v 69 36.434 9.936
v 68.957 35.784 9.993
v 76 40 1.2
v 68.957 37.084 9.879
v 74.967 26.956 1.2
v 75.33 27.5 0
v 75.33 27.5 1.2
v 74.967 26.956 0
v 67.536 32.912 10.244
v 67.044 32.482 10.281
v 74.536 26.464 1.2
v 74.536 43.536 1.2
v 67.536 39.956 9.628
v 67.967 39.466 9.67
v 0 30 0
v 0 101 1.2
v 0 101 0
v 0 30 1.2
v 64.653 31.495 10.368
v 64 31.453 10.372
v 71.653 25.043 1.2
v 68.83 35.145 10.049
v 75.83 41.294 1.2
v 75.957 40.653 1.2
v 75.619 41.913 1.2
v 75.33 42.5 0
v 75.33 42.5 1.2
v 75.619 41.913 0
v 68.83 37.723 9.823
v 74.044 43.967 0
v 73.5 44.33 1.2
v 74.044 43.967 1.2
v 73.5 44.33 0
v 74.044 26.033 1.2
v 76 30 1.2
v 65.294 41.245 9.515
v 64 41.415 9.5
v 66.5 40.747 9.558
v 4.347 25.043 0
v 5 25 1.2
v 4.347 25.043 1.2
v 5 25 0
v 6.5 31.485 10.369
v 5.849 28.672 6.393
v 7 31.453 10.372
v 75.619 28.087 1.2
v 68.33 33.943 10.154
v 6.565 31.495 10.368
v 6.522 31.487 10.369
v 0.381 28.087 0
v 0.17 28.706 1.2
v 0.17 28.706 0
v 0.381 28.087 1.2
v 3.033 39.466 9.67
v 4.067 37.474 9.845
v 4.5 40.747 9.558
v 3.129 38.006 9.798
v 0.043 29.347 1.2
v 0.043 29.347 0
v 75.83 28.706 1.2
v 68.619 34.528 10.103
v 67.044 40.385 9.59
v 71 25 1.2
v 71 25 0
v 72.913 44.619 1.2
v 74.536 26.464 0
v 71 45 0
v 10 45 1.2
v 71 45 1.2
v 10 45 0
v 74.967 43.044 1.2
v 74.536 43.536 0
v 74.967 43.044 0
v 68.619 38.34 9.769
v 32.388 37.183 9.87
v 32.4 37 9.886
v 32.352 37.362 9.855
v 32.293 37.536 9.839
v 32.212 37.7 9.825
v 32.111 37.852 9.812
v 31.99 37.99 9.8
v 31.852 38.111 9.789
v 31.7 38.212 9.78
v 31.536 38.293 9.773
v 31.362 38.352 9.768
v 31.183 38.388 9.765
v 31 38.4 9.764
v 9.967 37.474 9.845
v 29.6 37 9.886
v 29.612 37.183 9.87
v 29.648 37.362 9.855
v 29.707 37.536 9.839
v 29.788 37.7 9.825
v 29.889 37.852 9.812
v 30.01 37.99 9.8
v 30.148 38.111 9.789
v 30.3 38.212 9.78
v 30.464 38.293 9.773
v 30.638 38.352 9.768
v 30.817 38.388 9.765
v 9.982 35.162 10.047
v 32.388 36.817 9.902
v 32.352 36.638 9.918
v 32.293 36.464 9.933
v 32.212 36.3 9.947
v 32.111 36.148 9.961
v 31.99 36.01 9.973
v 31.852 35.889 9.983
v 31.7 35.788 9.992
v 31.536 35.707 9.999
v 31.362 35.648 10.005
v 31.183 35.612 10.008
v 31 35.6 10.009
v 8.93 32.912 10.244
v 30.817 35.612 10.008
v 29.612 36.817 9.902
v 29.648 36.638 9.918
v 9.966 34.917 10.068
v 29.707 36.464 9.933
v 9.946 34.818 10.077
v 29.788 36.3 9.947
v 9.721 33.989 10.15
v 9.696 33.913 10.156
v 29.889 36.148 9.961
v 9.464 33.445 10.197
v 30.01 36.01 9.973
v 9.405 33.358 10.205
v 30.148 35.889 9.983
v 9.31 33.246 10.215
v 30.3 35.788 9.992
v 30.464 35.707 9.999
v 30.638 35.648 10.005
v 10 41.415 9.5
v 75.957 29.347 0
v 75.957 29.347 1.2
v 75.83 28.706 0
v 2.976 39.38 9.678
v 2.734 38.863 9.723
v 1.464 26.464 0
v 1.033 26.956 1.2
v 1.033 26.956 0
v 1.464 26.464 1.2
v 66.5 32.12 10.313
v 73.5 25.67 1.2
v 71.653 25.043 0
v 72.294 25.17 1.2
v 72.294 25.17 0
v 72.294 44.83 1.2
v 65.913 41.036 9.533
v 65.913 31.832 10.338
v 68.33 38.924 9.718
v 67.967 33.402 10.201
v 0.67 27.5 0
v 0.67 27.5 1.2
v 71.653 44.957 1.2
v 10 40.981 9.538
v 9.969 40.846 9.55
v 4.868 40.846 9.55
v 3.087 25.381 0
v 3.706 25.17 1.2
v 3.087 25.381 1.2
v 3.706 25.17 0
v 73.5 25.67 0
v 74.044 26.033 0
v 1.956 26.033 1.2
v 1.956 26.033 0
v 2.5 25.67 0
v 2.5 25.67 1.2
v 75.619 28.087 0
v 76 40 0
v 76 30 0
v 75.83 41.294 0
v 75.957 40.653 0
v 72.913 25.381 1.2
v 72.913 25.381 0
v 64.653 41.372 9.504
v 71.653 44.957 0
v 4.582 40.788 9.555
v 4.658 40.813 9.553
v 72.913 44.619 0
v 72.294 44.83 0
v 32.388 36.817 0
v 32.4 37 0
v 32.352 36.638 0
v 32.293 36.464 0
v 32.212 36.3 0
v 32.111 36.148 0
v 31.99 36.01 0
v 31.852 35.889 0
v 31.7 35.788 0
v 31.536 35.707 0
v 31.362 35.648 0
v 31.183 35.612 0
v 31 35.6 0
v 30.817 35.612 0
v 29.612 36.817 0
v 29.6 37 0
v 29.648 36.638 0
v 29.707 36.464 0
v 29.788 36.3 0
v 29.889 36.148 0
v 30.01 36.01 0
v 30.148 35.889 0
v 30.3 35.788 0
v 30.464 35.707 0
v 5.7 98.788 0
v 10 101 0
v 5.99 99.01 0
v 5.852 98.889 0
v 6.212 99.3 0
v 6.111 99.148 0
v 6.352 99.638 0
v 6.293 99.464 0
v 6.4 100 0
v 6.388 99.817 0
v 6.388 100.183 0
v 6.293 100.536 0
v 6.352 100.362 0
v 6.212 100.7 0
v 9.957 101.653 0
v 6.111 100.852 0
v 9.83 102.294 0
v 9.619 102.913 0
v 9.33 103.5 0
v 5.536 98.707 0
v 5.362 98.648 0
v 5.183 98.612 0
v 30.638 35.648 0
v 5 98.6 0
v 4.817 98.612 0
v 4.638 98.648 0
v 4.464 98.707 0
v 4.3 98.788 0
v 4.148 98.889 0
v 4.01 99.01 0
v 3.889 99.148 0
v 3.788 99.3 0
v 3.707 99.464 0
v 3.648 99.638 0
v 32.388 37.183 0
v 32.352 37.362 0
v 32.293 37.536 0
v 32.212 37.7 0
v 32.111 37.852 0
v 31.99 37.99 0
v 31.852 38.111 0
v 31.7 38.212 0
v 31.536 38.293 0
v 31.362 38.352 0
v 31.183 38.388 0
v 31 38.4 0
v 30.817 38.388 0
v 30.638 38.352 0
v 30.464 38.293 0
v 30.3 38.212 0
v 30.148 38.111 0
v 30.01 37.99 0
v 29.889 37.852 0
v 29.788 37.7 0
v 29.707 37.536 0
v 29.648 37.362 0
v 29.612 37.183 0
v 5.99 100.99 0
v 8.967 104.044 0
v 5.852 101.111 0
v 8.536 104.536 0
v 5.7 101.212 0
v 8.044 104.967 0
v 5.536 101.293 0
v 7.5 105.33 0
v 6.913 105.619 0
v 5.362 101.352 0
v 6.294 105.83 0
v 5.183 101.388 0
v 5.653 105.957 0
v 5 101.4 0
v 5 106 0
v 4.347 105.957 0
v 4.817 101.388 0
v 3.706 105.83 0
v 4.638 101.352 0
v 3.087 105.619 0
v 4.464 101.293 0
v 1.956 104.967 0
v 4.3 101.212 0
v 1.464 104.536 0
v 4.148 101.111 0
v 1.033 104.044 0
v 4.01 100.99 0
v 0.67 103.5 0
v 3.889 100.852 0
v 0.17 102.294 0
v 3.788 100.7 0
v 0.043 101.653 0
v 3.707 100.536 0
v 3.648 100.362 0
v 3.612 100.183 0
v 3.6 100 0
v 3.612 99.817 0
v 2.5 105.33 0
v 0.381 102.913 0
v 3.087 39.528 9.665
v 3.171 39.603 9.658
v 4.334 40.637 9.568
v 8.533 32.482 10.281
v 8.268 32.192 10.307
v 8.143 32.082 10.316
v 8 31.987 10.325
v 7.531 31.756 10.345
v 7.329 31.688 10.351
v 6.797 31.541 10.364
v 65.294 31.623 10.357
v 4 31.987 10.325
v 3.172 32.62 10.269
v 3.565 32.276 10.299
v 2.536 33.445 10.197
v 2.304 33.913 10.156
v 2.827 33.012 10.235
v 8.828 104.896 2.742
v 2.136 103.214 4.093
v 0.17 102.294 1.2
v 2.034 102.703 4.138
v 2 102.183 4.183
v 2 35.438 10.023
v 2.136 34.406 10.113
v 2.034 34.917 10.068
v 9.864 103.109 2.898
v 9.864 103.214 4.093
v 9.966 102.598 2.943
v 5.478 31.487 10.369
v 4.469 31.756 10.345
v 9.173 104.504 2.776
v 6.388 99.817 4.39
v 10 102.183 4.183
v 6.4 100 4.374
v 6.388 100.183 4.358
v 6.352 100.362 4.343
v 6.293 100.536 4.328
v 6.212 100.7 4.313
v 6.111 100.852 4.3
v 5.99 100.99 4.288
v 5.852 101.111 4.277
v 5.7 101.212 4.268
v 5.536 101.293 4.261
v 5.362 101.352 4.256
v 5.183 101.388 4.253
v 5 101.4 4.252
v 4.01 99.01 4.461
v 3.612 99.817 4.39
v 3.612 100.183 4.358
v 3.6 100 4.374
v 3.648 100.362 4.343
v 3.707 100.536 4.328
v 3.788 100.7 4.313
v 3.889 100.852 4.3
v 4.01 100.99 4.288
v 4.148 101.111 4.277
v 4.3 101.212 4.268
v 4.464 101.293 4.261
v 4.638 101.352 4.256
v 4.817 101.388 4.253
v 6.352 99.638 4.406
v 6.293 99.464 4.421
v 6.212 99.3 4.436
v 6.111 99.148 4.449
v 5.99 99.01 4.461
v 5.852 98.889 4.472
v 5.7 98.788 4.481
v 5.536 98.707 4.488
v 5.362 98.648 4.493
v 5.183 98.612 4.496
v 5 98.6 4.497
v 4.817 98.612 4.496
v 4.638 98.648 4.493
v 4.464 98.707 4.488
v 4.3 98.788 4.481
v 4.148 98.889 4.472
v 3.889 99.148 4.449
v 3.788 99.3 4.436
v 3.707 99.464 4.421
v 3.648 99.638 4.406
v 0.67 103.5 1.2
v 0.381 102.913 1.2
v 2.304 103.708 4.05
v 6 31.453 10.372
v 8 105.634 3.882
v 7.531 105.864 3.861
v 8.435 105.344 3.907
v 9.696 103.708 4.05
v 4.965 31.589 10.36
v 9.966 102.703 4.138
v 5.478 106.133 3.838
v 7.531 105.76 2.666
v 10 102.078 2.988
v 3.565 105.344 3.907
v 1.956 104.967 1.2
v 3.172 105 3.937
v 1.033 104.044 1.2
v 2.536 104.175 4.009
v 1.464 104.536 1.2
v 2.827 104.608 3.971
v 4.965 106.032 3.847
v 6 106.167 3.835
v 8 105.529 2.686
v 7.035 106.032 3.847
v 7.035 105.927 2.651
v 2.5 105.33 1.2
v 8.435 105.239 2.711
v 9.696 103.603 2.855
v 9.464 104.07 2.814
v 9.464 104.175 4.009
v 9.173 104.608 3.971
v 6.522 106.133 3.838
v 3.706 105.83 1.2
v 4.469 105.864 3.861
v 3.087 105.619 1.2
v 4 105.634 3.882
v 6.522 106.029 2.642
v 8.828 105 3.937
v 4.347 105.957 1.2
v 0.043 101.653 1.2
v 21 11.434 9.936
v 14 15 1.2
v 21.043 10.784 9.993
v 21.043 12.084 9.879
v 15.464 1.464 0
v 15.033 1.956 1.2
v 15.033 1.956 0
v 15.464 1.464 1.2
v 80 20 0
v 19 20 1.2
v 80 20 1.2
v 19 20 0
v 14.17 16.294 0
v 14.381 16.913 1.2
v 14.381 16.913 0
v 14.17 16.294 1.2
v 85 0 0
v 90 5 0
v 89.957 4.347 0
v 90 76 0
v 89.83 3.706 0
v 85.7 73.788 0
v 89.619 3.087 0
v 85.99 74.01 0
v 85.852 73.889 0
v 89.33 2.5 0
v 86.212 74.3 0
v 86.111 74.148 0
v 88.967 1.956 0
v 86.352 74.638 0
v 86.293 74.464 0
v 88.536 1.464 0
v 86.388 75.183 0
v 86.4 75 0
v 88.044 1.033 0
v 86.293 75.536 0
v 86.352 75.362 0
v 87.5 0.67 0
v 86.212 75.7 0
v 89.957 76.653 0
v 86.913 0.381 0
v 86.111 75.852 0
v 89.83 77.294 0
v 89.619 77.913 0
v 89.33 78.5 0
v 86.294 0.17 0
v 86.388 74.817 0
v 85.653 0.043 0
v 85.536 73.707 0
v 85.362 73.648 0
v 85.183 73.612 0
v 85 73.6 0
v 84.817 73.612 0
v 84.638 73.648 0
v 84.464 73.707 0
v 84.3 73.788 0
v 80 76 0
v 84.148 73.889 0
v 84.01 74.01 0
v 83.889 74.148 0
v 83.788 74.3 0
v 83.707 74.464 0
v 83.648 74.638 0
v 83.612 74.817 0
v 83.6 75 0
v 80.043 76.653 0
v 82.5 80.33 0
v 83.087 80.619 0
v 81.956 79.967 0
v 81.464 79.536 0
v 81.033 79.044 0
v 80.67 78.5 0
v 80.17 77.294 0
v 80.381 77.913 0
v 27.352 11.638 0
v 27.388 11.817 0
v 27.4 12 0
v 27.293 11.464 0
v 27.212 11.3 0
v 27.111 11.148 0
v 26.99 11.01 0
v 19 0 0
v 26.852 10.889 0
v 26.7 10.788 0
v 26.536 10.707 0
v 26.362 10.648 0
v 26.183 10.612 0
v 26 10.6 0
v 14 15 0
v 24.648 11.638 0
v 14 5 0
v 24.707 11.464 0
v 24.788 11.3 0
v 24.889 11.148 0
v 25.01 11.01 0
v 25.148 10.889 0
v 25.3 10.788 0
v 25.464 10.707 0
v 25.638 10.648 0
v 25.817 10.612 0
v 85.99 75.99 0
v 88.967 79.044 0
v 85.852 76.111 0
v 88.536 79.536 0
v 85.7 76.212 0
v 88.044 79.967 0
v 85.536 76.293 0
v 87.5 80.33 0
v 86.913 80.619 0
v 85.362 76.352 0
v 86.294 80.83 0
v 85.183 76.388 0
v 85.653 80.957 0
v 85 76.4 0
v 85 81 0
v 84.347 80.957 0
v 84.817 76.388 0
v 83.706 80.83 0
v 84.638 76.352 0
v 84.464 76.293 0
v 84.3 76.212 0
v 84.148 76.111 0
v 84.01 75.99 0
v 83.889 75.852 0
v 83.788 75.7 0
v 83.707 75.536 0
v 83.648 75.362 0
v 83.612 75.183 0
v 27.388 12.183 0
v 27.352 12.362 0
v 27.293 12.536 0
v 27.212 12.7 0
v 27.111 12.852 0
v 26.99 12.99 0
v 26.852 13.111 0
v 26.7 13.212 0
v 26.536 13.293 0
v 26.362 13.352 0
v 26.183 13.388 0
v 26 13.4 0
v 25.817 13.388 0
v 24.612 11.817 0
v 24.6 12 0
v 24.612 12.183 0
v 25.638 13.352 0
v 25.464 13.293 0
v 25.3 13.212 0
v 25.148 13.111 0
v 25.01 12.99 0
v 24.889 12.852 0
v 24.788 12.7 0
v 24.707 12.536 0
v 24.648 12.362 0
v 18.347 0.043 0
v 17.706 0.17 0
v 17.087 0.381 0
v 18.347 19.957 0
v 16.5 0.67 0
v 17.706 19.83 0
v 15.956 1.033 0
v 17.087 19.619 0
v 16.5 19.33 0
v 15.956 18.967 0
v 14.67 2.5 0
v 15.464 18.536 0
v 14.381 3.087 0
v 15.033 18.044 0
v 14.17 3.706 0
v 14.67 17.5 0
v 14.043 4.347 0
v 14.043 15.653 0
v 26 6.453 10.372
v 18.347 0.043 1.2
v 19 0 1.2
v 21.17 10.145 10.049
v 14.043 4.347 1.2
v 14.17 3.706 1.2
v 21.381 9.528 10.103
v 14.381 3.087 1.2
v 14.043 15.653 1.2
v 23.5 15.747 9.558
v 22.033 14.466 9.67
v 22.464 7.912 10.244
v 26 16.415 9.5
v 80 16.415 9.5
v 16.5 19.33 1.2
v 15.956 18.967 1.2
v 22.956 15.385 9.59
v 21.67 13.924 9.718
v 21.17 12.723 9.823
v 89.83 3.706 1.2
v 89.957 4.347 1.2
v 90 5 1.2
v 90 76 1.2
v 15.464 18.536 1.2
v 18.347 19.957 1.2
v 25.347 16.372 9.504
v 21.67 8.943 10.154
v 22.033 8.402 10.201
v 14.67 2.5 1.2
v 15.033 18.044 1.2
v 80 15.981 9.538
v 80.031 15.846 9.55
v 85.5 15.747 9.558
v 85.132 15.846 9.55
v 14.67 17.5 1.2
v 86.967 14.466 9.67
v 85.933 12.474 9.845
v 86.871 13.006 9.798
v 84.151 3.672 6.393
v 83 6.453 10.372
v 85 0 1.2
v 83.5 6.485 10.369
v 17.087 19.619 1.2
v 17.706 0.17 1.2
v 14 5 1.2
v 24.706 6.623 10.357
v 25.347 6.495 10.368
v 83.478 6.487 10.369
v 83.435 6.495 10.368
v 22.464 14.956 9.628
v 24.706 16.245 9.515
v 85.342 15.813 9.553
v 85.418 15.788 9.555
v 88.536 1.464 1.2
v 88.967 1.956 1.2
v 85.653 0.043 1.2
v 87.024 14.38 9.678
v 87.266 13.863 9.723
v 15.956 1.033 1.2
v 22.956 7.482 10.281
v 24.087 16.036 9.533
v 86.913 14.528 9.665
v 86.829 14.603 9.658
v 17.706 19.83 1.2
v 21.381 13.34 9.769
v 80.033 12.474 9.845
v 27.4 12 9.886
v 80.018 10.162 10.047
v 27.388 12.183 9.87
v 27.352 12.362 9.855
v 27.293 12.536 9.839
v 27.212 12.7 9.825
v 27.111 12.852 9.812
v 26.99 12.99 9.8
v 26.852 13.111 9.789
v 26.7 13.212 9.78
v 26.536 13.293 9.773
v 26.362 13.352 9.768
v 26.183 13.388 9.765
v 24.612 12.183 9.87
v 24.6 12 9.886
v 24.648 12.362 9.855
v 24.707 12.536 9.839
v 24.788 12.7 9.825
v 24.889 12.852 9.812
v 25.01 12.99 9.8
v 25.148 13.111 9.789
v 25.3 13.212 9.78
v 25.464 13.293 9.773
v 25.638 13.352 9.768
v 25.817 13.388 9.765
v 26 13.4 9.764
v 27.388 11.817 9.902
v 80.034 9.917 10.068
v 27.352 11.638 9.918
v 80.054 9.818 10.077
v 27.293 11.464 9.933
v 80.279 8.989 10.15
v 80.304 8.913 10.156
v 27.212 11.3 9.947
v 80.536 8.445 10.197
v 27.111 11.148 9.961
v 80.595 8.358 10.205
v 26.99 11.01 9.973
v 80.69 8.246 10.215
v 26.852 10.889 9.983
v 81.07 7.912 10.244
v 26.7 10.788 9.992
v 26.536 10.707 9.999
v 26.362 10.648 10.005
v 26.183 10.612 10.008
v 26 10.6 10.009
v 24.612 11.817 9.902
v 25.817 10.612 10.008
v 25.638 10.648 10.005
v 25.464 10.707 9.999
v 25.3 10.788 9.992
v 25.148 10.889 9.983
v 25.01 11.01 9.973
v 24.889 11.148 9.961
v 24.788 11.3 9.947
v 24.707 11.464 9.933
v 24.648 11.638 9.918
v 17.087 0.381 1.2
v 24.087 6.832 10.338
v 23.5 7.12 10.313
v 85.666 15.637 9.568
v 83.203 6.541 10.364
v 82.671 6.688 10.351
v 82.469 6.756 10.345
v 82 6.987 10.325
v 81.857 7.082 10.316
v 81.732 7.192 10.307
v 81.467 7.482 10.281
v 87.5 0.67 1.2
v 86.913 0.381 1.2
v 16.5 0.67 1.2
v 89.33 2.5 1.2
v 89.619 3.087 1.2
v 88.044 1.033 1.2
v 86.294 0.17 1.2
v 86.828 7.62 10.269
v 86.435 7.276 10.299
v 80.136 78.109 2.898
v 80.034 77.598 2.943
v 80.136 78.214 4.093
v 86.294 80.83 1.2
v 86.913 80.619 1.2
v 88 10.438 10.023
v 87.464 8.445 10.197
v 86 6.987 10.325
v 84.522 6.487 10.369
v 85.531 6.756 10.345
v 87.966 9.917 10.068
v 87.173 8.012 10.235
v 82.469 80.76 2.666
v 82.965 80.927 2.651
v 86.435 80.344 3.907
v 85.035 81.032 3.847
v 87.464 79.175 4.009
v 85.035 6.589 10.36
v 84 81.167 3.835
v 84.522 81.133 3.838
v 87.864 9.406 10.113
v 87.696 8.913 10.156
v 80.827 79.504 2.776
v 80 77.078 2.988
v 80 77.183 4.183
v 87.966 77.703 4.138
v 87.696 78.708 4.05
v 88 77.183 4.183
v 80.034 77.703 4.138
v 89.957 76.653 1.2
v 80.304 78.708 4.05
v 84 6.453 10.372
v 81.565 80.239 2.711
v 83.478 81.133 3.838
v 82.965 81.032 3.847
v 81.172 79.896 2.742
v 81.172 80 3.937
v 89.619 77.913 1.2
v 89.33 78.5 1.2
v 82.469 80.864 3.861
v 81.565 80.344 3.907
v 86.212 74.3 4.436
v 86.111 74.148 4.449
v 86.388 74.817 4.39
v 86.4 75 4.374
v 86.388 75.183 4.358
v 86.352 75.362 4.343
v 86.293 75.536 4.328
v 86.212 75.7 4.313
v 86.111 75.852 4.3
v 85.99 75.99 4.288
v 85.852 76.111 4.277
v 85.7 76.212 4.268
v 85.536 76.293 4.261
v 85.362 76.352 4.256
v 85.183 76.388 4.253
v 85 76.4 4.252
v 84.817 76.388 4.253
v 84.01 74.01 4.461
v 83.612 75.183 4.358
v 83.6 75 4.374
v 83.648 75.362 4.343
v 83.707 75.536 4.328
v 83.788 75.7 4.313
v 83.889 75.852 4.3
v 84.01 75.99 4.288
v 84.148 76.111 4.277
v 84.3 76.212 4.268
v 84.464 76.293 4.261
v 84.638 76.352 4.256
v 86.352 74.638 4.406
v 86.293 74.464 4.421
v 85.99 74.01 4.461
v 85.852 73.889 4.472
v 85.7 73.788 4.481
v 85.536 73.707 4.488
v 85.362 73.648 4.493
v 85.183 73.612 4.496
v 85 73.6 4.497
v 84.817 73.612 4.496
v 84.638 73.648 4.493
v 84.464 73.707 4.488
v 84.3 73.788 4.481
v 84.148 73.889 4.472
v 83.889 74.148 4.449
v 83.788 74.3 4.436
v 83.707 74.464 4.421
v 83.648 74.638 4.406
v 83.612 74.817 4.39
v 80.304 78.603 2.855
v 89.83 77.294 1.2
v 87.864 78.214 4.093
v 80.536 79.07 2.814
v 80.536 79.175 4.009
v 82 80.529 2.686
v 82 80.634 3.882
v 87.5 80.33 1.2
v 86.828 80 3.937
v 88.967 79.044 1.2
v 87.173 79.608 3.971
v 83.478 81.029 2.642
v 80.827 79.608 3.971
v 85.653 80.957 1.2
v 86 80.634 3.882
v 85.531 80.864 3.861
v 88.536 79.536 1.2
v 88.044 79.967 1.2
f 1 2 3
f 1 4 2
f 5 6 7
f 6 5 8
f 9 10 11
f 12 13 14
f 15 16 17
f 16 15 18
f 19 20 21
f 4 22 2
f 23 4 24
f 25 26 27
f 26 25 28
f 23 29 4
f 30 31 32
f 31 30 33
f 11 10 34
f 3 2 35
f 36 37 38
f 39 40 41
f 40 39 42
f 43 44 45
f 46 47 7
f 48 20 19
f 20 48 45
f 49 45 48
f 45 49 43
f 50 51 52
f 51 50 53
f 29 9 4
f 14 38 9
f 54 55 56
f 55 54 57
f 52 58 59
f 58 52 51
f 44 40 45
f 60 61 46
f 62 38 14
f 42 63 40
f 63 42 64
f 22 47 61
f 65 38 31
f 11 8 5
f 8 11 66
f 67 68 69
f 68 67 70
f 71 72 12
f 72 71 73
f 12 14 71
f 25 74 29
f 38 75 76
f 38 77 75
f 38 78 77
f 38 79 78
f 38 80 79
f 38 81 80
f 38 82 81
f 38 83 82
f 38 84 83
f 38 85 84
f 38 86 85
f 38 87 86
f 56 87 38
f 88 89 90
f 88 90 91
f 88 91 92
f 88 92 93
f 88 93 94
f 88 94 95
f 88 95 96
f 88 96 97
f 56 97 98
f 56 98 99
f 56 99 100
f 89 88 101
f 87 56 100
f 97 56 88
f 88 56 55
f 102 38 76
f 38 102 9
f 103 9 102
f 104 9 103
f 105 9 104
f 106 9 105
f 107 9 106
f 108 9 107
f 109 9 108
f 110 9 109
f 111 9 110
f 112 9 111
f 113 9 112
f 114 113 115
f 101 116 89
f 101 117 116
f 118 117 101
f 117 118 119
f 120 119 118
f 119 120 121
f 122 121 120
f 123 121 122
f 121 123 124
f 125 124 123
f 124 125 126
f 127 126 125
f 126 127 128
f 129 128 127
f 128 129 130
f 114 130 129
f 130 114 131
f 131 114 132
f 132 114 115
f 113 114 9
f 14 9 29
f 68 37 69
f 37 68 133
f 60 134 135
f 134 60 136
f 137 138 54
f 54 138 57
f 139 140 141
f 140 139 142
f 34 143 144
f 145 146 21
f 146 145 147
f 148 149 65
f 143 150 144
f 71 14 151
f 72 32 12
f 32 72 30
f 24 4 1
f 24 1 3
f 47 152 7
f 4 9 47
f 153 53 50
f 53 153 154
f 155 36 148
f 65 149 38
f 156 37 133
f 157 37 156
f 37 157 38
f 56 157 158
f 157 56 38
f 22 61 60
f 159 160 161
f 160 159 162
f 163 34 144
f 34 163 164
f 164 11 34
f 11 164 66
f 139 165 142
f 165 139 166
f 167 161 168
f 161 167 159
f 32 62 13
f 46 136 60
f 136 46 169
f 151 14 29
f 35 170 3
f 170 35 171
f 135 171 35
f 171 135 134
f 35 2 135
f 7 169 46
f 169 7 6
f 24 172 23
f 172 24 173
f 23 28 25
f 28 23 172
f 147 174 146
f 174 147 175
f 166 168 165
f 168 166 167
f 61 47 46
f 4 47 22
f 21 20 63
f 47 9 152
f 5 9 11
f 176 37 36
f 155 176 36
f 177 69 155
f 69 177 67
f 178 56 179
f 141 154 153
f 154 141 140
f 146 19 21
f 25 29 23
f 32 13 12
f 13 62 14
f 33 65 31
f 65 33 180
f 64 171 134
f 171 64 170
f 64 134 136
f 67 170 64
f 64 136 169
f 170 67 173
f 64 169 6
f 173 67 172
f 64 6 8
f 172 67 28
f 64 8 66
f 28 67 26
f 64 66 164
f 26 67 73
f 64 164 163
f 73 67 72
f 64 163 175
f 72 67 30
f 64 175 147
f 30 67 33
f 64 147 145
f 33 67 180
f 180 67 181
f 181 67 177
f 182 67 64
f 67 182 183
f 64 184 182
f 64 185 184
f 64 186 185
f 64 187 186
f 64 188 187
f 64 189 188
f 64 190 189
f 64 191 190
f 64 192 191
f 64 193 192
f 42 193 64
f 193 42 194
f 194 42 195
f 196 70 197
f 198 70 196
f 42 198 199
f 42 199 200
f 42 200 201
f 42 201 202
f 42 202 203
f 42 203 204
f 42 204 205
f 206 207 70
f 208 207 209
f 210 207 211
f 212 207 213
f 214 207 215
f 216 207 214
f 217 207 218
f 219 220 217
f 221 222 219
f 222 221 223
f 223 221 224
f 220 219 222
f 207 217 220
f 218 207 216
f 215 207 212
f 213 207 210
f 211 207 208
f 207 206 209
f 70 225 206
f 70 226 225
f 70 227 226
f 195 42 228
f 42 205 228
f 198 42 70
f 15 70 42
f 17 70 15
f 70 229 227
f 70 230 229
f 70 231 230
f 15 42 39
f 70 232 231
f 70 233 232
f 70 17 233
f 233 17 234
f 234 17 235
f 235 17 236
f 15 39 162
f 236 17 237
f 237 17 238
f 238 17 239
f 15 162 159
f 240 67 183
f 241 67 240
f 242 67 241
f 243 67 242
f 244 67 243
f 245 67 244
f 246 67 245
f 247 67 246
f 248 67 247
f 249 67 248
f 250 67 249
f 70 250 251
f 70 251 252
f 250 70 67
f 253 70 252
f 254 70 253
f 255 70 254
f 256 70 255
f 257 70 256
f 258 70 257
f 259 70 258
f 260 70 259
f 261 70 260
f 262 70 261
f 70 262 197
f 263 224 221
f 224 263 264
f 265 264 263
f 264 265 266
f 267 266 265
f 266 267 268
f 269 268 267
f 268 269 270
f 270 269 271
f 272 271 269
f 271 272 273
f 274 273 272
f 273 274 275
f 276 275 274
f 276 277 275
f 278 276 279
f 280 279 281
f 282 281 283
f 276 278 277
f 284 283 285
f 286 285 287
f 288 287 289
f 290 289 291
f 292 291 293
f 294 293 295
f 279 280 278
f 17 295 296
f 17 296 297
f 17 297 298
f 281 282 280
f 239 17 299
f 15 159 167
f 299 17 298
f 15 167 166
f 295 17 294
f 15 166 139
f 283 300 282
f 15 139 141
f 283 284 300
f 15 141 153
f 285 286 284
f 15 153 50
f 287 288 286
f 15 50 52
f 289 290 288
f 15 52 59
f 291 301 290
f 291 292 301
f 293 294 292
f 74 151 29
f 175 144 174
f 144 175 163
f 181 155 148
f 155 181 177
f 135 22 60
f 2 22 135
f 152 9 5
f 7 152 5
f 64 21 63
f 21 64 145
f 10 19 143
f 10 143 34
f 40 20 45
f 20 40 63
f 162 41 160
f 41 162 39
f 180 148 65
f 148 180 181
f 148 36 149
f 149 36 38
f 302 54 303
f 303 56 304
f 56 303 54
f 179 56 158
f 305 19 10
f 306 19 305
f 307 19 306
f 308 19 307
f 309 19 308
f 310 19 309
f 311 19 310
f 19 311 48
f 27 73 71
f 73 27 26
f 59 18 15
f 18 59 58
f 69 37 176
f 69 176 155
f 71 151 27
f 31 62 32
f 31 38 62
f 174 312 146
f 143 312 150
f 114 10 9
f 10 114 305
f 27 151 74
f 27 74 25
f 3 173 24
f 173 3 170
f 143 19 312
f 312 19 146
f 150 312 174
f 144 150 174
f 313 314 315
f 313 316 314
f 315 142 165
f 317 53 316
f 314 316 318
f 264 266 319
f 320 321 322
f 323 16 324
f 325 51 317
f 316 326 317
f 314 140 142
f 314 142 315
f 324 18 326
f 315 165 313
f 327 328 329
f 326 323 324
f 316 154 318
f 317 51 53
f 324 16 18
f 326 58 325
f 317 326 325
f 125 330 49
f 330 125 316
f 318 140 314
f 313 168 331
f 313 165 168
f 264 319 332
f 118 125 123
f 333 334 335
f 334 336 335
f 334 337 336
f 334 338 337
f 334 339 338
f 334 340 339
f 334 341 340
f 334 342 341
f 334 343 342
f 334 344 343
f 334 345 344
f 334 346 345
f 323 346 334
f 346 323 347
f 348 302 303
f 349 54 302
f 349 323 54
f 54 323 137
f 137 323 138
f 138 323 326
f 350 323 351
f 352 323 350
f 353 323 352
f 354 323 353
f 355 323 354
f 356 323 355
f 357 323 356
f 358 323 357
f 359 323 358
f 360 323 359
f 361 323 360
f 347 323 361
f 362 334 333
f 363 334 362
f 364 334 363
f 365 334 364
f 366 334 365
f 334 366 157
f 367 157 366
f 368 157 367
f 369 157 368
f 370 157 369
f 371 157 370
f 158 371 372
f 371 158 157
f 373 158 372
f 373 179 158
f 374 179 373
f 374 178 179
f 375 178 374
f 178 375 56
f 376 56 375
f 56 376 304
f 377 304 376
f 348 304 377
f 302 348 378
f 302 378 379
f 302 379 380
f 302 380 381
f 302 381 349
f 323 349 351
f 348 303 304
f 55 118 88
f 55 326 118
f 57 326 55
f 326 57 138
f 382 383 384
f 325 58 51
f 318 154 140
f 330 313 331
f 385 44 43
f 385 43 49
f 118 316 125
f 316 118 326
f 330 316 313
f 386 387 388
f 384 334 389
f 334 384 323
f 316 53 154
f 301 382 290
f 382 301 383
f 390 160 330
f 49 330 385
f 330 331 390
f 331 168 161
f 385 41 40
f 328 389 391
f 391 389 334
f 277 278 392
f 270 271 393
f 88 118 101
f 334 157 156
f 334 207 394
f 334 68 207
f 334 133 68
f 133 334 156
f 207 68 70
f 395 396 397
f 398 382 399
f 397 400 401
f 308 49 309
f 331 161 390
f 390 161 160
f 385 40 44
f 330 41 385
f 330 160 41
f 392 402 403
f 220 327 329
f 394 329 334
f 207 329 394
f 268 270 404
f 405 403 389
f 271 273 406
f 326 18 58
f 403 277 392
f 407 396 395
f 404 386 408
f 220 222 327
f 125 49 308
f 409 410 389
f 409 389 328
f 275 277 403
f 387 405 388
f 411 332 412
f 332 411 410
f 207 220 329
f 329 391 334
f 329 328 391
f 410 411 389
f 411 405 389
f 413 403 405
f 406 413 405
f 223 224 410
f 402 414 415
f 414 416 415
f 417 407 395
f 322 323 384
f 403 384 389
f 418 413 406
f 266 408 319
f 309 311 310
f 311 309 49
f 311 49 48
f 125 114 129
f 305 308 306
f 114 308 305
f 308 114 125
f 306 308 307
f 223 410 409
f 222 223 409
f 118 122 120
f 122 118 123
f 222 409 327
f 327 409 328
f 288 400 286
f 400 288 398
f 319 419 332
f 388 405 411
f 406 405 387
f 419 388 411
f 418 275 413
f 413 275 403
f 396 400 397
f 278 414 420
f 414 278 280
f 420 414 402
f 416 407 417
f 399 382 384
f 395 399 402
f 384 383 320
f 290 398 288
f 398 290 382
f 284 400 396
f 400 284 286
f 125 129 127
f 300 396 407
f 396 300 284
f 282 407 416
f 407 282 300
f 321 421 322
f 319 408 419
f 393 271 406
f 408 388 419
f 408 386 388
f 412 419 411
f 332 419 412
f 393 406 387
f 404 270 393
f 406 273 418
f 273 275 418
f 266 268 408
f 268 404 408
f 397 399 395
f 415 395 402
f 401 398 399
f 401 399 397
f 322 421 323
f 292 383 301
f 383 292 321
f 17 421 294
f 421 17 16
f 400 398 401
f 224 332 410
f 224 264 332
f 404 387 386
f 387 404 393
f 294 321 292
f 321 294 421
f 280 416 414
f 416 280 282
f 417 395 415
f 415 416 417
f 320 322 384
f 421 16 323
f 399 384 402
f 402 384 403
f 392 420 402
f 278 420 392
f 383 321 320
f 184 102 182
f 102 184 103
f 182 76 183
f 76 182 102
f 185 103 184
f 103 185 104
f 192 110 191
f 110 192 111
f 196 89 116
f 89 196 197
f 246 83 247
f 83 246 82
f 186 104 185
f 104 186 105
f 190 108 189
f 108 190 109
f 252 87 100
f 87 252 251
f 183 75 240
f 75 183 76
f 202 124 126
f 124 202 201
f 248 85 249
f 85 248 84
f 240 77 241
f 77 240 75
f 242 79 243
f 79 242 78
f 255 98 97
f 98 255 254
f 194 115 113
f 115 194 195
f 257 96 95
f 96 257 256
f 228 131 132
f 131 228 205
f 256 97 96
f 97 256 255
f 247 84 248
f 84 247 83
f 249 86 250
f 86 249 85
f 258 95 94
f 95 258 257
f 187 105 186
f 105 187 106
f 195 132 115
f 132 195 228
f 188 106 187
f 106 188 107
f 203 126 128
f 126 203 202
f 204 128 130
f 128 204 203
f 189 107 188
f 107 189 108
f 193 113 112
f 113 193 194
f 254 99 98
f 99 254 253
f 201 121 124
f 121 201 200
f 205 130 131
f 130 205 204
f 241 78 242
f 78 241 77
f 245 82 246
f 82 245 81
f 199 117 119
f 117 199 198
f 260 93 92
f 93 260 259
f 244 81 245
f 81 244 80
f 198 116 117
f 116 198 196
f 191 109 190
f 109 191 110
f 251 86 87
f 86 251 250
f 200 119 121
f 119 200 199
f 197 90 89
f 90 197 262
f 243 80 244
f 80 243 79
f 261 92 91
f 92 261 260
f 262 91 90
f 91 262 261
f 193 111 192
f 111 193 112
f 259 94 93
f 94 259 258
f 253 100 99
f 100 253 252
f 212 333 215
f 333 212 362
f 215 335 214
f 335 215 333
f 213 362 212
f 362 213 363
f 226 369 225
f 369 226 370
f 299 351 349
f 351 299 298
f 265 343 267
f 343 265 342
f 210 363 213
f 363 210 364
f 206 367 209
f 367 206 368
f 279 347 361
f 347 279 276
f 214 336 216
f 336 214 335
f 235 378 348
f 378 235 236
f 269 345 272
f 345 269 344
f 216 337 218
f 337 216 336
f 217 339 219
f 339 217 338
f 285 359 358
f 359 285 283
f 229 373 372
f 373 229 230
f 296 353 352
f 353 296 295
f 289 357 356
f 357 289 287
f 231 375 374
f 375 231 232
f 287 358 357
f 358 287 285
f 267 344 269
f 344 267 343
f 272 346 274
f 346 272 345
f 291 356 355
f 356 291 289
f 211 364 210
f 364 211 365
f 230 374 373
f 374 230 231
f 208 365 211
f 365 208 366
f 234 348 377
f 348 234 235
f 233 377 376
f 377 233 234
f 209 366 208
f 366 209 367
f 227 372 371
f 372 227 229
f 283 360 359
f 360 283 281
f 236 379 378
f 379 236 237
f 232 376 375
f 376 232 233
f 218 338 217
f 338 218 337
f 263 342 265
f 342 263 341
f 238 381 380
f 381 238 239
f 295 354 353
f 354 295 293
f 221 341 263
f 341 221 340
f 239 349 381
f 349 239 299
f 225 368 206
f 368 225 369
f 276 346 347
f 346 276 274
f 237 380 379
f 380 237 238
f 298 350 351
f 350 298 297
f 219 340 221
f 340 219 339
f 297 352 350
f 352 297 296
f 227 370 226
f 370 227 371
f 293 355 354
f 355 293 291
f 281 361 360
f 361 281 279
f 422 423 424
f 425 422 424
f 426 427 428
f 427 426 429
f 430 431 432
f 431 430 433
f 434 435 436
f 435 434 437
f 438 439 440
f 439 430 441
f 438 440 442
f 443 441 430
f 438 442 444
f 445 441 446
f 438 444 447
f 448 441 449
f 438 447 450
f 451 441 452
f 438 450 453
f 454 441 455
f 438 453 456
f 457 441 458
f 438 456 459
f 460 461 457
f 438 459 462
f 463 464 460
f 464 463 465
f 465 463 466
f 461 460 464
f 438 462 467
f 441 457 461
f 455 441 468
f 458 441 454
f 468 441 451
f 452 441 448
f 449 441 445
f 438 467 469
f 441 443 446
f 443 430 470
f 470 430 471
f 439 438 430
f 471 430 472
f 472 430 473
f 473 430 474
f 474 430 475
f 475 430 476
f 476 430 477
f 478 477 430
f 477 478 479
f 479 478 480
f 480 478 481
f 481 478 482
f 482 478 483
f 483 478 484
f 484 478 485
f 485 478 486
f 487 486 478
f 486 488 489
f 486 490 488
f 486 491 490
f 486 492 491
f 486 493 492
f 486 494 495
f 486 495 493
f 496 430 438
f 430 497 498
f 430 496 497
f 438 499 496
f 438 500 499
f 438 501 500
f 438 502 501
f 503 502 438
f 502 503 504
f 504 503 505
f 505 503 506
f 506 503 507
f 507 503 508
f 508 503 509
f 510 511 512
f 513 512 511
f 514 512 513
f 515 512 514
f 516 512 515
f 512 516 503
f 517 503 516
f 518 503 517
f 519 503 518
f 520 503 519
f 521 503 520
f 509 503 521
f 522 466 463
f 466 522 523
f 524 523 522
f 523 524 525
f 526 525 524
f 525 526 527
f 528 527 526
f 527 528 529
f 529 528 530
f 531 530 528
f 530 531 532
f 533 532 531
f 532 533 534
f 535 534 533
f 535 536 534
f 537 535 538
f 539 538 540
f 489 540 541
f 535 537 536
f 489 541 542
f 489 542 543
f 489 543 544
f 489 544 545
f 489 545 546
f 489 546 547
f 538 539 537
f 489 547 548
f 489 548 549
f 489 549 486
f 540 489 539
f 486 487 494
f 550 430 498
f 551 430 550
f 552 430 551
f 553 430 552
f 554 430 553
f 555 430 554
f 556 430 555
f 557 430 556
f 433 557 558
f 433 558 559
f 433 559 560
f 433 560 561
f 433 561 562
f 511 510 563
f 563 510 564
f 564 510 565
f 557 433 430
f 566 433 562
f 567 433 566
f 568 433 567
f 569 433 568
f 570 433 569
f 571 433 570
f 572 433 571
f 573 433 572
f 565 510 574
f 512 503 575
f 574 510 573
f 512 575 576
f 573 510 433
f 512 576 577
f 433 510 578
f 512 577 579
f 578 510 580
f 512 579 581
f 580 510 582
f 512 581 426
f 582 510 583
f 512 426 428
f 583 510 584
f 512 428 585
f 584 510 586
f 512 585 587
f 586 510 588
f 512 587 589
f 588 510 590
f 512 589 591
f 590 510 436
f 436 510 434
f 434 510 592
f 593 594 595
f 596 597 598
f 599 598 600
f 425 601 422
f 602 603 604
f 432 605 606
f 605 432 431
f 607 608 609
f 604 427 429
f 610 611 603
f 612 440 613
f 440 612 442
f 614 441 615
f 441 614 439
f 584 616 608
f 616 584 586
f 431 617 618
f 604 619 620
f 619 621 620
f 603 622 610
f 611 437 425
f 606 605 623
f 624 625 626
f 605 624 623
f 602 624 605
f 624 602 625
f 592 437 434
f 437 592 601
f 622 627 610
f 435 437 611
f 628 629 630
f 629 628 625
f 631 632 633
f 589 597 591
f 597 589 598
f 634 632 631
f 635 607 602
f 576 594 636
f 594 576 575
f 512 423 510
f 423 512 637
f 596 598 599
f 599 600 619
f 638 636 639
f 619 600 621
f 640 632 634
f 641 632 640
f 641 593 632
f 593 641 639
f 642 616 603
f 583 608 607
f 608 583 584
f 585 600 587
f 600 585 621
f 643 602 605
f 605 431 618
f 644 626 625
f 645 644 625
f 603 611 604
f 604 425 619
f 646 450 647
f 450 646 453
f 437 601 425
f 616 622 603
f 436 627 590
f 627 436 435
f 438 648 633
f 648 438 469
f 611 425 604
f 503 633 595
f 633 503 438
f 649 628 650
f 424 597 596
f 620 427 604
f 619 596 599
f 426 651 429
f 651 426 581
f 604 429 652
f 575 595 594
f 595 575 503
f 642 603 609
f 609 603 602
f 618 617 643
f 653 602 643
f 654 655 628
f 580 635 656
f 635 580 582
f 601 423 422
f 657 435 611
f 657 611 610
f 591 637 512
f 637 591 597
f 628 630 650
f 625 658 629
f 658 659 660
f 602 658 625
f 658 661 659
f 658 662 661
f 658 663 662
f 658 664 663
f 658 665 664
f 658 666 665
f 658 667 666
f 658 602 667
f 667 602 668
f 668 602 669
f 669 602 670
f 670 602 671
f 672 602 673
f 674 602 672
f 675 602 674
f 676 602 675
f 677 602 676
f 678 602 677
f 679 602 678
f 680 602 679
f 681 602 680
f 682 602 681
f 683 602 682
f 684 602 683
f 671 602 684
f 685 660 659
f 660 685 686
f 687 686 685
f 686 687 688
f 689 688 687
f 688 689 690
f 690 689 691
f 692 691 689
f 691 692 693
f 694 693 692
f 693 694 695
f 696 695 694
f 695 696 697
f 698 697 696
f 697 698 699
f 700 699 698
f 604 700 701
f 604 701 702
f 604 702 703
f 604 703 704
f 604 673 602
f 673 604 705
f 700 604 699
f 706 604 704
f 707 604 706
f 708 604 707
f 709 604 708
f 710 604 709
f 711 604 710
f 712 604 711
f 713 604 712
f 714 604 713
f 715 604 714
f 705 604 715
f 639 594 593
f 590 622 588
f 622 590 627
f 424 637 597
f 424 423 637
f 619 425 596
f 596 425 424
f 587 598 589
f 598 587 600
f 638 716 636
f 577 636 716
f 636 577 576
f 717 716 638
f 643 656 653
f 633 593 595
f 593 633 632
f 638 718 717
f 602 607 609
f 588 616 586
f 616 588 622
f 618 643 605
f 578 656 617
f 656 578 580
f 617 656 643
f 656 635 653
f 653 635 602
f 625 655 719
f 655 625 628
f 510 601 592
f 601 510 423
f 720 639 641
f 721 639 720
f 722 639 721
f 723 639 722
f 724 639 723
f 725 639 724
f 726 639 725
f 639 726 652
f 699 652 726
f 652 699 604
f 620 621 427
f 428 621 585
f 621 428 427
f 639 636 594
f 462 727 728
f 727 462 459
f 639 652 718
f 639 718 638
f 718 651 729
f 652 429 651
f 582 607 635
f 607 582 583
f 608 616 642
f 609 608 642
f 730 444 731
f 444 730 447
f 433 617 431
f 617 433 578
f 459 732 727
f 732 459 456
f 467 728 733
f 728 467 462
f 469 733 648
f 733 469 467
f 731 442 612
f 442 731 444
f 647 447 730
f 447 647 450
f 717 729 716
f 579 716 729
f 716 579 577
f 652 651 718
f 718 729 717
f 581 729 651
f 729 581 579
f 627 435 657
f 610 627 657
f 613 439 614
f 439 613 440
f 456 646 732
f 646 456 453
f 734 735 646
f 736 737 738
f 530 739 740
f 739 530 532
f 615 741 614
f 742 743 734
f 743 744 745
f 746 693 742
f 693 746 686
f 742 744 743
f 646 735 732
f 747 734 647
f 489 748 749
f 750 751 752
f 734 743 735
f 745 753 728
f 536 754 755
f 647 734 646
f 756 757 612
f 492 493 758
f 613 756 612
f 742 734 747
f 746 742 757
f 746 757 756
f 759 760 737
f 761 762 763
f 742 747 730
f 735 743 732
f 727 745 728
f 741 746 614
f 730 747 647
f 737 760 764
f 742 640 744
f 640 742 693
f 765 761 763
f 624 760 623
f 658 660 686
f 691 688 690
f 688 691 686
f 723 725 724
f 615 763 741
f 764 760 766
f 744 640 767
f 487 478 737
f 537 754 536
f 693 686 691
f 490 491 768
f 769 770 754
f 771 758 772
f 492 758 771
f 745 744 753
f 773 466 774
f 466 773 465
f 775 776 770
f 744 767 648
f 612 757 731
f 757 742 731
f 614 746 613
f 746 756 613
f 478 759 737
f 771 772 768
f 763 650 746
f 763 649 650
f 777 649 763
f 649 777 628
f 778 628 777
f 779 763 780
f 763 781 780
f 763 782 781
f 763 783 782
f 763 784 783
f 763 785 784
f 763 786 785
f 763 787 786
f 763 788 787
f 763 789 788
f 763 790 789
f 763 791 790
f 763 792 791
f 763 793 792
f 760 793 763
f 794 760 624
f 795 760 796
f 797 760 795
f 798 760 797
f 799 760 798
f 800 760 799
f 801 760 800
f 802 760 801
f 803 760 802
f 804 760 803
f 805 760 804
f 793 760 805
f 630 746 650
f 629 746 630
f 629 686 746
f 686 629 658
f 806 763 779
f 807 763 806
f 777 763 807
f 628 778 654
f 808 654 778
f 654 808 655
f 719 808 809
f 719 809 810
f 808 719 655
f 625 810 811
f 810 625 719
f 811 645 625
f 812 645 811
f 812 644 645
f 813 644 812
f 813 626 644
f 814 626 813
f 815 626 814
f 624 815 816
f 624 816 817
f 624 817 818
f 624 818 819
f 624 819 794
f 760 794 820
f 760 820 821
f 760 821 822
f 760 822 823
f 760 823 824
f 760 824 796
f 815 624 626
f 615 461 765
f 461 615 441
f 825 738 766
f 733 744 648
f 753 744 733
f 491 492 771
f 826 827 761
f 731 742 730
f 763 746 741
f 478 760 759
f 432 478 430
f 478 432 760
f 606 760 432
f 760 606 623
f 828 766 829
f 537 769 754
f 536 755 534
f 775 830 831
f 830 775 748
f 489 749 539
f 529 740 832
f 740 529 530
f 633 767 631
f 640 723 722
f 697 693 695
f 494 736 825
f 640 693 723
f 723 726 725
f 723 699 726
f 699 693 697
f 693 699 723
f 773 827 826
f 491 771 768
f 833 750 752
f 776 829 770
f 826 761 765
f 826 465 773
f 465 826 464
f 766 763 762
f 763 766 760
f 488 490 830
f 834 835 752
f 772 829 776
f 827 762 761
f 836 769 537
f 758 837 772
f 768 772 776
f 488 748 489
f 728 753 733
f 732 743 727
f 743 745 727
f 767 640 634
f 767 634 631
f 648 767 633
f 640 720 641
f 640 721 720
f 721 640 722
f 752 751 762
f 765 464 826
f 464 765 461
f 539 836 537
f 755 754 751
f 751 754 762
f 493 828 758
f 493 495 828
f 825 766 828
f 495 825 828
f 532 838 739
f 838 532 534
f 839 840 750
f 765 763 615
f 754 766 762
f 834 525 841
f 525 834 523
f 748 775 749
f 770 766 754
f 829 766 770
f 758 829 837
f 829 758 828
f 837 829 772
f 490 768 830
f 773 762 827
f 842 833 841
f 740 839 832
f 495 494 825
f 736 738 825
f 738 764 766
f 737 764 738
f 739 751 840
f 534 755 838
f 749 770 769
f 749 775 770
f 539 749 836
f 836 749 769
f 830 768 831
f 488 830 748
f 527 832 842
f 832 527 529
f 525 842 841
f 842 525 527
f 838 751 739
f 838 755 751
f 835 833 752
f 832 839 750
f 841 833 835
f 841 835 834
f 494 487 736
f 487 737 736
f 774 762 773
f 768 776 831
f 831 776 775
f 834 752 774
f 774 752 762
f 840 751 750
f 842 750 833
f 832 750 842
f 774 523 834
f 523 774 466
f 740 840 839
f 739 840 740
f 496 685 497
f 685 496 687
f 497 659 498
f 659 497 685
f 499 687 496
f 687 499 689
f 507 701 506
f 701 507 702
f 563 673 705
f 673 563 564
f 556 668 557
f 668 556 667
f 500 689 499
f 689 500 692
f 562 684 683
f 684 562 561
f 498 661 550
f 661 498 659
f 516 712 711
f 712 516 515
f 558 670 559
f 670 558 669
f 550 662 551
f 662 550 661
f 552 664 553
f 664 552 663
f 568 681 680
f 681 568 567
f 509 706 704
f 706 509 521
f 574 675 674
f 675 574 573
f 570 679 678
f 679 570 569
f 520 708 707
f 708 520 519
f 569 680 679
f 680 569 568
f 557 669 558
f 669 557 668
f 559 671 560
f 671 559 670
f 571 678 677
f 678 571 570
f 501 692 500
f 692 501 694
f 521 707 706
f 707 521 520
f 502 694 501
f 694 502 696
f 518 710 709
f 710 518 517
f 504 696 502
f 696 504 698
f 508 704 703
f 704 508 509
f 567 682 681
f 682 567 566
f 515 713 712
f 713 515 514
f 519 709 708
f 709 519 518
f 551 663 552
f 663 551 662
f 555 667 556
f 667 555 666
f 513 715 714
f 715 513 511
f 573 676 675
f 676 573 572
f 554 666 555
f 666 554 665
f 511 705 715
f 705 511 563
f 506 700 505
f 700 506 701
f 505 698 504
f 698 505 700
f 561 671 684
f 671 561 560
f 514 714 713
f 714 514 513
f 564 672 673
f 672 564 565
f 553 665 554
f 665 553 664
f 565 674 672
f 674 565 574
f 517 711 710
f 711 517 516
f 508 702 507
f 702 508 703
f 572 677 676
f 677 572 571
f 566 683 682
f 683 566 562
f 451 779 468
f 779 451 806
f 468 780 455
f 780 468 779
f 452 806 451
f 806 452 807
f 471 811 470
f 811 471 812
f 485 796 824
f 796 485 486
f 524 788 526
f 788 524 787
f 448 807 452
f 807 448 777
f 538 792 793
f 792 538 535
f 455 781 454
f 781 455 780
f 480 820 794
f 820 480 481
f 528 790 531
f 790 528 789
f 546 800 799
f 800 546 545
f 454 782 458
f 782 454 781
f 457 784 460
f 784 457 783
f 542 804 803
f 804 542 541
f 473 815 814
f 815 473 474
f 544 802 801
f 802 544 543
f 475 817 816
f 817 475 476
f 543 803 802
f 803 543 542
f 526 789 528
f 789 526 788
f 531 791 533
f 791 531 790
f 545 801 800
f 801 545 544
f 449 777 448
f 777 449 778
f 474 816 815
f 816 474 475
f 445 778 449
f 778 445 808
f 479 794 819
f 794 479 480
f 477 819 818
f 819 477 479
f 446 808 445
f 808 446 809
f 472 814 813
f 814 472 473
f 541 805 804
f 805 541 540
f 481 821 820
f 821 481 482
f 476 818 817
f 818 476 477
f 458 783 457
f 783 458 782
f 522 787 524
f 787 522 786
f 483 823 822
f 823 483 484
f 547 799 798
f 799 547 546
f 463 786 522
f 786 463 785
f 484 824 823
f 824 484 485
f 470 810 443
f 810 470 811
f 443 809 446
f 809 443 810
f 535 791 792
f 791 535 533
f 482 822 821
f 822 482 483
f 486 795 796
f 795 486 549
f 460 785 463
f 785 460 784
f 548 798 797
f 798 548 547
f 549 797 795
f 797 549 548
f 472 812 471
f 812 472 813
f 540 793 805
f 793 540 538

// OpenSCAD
// file: feet.scad
e=.001;
$fn=48;
padding=5;

dim = [ 357, 125, 10 ] ;

holes = [ [31, dim.y-12], [dim.x-64, dim.y-12], [ 5, 50 ], [dim.x-5, 50 ] ] ;

r = 5;

bottom = 1.2;
screw_hole_d = 2.8;

angle = 5;

module do_center(dim, center)
{
    if (center)
        translate(-dim/2)
            children();
    else
        children();
}
 
module rounded_box(dim, r, center=false)
{
    do_center(dim, center)
    hull()
    {
        for (x=[r,dim.x-r])
        for (y=[r,dim.y-r])
        translate([x,y,0])
        cylinder(h=dim.z,r=r);
    }
}

module preview()
{
	if ($preview) children();
}


module at_holes()
{
	for (pos=holes)
        translate([pos.x, pos.y, 0])
            children();
}

module reflect_x(x)
{
	translate([x,0,0])
	scale([-1,1,1])
	translate([-x,0,0])
	children();
}

module mirror_x(x)
{
	children();
	reflect_x(x)
	children();
}


module feet()
{

	difference()
	{
	union()
	{
		mirror_x(dim.x/2)
		hull()
		{
		rotate([-angle,0,0])
		translate([2,dim.y-16,0])
		rounded_box([67, 10, bottom], 5);
		translate([0,dim.y-20,-bottom])
		rounded_box([76, 20, bottom], r);
		}

		mirror_x(dim.x/2)
		hull()
		{
		rotate([-angle,0,0])
		translate([2,dim.y-81,0])
		rounded_box([8, 75, bottom], 4);
		translate([0,dim.y-81,-bottom])
		rounded_box([10, 81, bottom], r);
		}
	}

	at_holes() translate([0,0,-20+e]) cylinder(d=screw_hole_d, h=20);
	}
}

module left_foot()
{
	intersection()
	{
	translate([-5,-5,-25])
	cube([dim.x/2+5,dim.y+10, 30]);
	feet();
	}
}


module right_foot()
{
	intersection()
	{
	reflect_x(dim.x/2)
	translate([-5,-5,-25])
	cube([dim.x/2+5,dim.y+10, 30]);
	feet();
	}
}

preview()
{
left_foot();
right_foot();
}
// main file
use <feet.scad>;

translate([0,150,0])
rotate([180,0,0])
{
left_foot();

translate([-267,25,0])
right_foot();
}
